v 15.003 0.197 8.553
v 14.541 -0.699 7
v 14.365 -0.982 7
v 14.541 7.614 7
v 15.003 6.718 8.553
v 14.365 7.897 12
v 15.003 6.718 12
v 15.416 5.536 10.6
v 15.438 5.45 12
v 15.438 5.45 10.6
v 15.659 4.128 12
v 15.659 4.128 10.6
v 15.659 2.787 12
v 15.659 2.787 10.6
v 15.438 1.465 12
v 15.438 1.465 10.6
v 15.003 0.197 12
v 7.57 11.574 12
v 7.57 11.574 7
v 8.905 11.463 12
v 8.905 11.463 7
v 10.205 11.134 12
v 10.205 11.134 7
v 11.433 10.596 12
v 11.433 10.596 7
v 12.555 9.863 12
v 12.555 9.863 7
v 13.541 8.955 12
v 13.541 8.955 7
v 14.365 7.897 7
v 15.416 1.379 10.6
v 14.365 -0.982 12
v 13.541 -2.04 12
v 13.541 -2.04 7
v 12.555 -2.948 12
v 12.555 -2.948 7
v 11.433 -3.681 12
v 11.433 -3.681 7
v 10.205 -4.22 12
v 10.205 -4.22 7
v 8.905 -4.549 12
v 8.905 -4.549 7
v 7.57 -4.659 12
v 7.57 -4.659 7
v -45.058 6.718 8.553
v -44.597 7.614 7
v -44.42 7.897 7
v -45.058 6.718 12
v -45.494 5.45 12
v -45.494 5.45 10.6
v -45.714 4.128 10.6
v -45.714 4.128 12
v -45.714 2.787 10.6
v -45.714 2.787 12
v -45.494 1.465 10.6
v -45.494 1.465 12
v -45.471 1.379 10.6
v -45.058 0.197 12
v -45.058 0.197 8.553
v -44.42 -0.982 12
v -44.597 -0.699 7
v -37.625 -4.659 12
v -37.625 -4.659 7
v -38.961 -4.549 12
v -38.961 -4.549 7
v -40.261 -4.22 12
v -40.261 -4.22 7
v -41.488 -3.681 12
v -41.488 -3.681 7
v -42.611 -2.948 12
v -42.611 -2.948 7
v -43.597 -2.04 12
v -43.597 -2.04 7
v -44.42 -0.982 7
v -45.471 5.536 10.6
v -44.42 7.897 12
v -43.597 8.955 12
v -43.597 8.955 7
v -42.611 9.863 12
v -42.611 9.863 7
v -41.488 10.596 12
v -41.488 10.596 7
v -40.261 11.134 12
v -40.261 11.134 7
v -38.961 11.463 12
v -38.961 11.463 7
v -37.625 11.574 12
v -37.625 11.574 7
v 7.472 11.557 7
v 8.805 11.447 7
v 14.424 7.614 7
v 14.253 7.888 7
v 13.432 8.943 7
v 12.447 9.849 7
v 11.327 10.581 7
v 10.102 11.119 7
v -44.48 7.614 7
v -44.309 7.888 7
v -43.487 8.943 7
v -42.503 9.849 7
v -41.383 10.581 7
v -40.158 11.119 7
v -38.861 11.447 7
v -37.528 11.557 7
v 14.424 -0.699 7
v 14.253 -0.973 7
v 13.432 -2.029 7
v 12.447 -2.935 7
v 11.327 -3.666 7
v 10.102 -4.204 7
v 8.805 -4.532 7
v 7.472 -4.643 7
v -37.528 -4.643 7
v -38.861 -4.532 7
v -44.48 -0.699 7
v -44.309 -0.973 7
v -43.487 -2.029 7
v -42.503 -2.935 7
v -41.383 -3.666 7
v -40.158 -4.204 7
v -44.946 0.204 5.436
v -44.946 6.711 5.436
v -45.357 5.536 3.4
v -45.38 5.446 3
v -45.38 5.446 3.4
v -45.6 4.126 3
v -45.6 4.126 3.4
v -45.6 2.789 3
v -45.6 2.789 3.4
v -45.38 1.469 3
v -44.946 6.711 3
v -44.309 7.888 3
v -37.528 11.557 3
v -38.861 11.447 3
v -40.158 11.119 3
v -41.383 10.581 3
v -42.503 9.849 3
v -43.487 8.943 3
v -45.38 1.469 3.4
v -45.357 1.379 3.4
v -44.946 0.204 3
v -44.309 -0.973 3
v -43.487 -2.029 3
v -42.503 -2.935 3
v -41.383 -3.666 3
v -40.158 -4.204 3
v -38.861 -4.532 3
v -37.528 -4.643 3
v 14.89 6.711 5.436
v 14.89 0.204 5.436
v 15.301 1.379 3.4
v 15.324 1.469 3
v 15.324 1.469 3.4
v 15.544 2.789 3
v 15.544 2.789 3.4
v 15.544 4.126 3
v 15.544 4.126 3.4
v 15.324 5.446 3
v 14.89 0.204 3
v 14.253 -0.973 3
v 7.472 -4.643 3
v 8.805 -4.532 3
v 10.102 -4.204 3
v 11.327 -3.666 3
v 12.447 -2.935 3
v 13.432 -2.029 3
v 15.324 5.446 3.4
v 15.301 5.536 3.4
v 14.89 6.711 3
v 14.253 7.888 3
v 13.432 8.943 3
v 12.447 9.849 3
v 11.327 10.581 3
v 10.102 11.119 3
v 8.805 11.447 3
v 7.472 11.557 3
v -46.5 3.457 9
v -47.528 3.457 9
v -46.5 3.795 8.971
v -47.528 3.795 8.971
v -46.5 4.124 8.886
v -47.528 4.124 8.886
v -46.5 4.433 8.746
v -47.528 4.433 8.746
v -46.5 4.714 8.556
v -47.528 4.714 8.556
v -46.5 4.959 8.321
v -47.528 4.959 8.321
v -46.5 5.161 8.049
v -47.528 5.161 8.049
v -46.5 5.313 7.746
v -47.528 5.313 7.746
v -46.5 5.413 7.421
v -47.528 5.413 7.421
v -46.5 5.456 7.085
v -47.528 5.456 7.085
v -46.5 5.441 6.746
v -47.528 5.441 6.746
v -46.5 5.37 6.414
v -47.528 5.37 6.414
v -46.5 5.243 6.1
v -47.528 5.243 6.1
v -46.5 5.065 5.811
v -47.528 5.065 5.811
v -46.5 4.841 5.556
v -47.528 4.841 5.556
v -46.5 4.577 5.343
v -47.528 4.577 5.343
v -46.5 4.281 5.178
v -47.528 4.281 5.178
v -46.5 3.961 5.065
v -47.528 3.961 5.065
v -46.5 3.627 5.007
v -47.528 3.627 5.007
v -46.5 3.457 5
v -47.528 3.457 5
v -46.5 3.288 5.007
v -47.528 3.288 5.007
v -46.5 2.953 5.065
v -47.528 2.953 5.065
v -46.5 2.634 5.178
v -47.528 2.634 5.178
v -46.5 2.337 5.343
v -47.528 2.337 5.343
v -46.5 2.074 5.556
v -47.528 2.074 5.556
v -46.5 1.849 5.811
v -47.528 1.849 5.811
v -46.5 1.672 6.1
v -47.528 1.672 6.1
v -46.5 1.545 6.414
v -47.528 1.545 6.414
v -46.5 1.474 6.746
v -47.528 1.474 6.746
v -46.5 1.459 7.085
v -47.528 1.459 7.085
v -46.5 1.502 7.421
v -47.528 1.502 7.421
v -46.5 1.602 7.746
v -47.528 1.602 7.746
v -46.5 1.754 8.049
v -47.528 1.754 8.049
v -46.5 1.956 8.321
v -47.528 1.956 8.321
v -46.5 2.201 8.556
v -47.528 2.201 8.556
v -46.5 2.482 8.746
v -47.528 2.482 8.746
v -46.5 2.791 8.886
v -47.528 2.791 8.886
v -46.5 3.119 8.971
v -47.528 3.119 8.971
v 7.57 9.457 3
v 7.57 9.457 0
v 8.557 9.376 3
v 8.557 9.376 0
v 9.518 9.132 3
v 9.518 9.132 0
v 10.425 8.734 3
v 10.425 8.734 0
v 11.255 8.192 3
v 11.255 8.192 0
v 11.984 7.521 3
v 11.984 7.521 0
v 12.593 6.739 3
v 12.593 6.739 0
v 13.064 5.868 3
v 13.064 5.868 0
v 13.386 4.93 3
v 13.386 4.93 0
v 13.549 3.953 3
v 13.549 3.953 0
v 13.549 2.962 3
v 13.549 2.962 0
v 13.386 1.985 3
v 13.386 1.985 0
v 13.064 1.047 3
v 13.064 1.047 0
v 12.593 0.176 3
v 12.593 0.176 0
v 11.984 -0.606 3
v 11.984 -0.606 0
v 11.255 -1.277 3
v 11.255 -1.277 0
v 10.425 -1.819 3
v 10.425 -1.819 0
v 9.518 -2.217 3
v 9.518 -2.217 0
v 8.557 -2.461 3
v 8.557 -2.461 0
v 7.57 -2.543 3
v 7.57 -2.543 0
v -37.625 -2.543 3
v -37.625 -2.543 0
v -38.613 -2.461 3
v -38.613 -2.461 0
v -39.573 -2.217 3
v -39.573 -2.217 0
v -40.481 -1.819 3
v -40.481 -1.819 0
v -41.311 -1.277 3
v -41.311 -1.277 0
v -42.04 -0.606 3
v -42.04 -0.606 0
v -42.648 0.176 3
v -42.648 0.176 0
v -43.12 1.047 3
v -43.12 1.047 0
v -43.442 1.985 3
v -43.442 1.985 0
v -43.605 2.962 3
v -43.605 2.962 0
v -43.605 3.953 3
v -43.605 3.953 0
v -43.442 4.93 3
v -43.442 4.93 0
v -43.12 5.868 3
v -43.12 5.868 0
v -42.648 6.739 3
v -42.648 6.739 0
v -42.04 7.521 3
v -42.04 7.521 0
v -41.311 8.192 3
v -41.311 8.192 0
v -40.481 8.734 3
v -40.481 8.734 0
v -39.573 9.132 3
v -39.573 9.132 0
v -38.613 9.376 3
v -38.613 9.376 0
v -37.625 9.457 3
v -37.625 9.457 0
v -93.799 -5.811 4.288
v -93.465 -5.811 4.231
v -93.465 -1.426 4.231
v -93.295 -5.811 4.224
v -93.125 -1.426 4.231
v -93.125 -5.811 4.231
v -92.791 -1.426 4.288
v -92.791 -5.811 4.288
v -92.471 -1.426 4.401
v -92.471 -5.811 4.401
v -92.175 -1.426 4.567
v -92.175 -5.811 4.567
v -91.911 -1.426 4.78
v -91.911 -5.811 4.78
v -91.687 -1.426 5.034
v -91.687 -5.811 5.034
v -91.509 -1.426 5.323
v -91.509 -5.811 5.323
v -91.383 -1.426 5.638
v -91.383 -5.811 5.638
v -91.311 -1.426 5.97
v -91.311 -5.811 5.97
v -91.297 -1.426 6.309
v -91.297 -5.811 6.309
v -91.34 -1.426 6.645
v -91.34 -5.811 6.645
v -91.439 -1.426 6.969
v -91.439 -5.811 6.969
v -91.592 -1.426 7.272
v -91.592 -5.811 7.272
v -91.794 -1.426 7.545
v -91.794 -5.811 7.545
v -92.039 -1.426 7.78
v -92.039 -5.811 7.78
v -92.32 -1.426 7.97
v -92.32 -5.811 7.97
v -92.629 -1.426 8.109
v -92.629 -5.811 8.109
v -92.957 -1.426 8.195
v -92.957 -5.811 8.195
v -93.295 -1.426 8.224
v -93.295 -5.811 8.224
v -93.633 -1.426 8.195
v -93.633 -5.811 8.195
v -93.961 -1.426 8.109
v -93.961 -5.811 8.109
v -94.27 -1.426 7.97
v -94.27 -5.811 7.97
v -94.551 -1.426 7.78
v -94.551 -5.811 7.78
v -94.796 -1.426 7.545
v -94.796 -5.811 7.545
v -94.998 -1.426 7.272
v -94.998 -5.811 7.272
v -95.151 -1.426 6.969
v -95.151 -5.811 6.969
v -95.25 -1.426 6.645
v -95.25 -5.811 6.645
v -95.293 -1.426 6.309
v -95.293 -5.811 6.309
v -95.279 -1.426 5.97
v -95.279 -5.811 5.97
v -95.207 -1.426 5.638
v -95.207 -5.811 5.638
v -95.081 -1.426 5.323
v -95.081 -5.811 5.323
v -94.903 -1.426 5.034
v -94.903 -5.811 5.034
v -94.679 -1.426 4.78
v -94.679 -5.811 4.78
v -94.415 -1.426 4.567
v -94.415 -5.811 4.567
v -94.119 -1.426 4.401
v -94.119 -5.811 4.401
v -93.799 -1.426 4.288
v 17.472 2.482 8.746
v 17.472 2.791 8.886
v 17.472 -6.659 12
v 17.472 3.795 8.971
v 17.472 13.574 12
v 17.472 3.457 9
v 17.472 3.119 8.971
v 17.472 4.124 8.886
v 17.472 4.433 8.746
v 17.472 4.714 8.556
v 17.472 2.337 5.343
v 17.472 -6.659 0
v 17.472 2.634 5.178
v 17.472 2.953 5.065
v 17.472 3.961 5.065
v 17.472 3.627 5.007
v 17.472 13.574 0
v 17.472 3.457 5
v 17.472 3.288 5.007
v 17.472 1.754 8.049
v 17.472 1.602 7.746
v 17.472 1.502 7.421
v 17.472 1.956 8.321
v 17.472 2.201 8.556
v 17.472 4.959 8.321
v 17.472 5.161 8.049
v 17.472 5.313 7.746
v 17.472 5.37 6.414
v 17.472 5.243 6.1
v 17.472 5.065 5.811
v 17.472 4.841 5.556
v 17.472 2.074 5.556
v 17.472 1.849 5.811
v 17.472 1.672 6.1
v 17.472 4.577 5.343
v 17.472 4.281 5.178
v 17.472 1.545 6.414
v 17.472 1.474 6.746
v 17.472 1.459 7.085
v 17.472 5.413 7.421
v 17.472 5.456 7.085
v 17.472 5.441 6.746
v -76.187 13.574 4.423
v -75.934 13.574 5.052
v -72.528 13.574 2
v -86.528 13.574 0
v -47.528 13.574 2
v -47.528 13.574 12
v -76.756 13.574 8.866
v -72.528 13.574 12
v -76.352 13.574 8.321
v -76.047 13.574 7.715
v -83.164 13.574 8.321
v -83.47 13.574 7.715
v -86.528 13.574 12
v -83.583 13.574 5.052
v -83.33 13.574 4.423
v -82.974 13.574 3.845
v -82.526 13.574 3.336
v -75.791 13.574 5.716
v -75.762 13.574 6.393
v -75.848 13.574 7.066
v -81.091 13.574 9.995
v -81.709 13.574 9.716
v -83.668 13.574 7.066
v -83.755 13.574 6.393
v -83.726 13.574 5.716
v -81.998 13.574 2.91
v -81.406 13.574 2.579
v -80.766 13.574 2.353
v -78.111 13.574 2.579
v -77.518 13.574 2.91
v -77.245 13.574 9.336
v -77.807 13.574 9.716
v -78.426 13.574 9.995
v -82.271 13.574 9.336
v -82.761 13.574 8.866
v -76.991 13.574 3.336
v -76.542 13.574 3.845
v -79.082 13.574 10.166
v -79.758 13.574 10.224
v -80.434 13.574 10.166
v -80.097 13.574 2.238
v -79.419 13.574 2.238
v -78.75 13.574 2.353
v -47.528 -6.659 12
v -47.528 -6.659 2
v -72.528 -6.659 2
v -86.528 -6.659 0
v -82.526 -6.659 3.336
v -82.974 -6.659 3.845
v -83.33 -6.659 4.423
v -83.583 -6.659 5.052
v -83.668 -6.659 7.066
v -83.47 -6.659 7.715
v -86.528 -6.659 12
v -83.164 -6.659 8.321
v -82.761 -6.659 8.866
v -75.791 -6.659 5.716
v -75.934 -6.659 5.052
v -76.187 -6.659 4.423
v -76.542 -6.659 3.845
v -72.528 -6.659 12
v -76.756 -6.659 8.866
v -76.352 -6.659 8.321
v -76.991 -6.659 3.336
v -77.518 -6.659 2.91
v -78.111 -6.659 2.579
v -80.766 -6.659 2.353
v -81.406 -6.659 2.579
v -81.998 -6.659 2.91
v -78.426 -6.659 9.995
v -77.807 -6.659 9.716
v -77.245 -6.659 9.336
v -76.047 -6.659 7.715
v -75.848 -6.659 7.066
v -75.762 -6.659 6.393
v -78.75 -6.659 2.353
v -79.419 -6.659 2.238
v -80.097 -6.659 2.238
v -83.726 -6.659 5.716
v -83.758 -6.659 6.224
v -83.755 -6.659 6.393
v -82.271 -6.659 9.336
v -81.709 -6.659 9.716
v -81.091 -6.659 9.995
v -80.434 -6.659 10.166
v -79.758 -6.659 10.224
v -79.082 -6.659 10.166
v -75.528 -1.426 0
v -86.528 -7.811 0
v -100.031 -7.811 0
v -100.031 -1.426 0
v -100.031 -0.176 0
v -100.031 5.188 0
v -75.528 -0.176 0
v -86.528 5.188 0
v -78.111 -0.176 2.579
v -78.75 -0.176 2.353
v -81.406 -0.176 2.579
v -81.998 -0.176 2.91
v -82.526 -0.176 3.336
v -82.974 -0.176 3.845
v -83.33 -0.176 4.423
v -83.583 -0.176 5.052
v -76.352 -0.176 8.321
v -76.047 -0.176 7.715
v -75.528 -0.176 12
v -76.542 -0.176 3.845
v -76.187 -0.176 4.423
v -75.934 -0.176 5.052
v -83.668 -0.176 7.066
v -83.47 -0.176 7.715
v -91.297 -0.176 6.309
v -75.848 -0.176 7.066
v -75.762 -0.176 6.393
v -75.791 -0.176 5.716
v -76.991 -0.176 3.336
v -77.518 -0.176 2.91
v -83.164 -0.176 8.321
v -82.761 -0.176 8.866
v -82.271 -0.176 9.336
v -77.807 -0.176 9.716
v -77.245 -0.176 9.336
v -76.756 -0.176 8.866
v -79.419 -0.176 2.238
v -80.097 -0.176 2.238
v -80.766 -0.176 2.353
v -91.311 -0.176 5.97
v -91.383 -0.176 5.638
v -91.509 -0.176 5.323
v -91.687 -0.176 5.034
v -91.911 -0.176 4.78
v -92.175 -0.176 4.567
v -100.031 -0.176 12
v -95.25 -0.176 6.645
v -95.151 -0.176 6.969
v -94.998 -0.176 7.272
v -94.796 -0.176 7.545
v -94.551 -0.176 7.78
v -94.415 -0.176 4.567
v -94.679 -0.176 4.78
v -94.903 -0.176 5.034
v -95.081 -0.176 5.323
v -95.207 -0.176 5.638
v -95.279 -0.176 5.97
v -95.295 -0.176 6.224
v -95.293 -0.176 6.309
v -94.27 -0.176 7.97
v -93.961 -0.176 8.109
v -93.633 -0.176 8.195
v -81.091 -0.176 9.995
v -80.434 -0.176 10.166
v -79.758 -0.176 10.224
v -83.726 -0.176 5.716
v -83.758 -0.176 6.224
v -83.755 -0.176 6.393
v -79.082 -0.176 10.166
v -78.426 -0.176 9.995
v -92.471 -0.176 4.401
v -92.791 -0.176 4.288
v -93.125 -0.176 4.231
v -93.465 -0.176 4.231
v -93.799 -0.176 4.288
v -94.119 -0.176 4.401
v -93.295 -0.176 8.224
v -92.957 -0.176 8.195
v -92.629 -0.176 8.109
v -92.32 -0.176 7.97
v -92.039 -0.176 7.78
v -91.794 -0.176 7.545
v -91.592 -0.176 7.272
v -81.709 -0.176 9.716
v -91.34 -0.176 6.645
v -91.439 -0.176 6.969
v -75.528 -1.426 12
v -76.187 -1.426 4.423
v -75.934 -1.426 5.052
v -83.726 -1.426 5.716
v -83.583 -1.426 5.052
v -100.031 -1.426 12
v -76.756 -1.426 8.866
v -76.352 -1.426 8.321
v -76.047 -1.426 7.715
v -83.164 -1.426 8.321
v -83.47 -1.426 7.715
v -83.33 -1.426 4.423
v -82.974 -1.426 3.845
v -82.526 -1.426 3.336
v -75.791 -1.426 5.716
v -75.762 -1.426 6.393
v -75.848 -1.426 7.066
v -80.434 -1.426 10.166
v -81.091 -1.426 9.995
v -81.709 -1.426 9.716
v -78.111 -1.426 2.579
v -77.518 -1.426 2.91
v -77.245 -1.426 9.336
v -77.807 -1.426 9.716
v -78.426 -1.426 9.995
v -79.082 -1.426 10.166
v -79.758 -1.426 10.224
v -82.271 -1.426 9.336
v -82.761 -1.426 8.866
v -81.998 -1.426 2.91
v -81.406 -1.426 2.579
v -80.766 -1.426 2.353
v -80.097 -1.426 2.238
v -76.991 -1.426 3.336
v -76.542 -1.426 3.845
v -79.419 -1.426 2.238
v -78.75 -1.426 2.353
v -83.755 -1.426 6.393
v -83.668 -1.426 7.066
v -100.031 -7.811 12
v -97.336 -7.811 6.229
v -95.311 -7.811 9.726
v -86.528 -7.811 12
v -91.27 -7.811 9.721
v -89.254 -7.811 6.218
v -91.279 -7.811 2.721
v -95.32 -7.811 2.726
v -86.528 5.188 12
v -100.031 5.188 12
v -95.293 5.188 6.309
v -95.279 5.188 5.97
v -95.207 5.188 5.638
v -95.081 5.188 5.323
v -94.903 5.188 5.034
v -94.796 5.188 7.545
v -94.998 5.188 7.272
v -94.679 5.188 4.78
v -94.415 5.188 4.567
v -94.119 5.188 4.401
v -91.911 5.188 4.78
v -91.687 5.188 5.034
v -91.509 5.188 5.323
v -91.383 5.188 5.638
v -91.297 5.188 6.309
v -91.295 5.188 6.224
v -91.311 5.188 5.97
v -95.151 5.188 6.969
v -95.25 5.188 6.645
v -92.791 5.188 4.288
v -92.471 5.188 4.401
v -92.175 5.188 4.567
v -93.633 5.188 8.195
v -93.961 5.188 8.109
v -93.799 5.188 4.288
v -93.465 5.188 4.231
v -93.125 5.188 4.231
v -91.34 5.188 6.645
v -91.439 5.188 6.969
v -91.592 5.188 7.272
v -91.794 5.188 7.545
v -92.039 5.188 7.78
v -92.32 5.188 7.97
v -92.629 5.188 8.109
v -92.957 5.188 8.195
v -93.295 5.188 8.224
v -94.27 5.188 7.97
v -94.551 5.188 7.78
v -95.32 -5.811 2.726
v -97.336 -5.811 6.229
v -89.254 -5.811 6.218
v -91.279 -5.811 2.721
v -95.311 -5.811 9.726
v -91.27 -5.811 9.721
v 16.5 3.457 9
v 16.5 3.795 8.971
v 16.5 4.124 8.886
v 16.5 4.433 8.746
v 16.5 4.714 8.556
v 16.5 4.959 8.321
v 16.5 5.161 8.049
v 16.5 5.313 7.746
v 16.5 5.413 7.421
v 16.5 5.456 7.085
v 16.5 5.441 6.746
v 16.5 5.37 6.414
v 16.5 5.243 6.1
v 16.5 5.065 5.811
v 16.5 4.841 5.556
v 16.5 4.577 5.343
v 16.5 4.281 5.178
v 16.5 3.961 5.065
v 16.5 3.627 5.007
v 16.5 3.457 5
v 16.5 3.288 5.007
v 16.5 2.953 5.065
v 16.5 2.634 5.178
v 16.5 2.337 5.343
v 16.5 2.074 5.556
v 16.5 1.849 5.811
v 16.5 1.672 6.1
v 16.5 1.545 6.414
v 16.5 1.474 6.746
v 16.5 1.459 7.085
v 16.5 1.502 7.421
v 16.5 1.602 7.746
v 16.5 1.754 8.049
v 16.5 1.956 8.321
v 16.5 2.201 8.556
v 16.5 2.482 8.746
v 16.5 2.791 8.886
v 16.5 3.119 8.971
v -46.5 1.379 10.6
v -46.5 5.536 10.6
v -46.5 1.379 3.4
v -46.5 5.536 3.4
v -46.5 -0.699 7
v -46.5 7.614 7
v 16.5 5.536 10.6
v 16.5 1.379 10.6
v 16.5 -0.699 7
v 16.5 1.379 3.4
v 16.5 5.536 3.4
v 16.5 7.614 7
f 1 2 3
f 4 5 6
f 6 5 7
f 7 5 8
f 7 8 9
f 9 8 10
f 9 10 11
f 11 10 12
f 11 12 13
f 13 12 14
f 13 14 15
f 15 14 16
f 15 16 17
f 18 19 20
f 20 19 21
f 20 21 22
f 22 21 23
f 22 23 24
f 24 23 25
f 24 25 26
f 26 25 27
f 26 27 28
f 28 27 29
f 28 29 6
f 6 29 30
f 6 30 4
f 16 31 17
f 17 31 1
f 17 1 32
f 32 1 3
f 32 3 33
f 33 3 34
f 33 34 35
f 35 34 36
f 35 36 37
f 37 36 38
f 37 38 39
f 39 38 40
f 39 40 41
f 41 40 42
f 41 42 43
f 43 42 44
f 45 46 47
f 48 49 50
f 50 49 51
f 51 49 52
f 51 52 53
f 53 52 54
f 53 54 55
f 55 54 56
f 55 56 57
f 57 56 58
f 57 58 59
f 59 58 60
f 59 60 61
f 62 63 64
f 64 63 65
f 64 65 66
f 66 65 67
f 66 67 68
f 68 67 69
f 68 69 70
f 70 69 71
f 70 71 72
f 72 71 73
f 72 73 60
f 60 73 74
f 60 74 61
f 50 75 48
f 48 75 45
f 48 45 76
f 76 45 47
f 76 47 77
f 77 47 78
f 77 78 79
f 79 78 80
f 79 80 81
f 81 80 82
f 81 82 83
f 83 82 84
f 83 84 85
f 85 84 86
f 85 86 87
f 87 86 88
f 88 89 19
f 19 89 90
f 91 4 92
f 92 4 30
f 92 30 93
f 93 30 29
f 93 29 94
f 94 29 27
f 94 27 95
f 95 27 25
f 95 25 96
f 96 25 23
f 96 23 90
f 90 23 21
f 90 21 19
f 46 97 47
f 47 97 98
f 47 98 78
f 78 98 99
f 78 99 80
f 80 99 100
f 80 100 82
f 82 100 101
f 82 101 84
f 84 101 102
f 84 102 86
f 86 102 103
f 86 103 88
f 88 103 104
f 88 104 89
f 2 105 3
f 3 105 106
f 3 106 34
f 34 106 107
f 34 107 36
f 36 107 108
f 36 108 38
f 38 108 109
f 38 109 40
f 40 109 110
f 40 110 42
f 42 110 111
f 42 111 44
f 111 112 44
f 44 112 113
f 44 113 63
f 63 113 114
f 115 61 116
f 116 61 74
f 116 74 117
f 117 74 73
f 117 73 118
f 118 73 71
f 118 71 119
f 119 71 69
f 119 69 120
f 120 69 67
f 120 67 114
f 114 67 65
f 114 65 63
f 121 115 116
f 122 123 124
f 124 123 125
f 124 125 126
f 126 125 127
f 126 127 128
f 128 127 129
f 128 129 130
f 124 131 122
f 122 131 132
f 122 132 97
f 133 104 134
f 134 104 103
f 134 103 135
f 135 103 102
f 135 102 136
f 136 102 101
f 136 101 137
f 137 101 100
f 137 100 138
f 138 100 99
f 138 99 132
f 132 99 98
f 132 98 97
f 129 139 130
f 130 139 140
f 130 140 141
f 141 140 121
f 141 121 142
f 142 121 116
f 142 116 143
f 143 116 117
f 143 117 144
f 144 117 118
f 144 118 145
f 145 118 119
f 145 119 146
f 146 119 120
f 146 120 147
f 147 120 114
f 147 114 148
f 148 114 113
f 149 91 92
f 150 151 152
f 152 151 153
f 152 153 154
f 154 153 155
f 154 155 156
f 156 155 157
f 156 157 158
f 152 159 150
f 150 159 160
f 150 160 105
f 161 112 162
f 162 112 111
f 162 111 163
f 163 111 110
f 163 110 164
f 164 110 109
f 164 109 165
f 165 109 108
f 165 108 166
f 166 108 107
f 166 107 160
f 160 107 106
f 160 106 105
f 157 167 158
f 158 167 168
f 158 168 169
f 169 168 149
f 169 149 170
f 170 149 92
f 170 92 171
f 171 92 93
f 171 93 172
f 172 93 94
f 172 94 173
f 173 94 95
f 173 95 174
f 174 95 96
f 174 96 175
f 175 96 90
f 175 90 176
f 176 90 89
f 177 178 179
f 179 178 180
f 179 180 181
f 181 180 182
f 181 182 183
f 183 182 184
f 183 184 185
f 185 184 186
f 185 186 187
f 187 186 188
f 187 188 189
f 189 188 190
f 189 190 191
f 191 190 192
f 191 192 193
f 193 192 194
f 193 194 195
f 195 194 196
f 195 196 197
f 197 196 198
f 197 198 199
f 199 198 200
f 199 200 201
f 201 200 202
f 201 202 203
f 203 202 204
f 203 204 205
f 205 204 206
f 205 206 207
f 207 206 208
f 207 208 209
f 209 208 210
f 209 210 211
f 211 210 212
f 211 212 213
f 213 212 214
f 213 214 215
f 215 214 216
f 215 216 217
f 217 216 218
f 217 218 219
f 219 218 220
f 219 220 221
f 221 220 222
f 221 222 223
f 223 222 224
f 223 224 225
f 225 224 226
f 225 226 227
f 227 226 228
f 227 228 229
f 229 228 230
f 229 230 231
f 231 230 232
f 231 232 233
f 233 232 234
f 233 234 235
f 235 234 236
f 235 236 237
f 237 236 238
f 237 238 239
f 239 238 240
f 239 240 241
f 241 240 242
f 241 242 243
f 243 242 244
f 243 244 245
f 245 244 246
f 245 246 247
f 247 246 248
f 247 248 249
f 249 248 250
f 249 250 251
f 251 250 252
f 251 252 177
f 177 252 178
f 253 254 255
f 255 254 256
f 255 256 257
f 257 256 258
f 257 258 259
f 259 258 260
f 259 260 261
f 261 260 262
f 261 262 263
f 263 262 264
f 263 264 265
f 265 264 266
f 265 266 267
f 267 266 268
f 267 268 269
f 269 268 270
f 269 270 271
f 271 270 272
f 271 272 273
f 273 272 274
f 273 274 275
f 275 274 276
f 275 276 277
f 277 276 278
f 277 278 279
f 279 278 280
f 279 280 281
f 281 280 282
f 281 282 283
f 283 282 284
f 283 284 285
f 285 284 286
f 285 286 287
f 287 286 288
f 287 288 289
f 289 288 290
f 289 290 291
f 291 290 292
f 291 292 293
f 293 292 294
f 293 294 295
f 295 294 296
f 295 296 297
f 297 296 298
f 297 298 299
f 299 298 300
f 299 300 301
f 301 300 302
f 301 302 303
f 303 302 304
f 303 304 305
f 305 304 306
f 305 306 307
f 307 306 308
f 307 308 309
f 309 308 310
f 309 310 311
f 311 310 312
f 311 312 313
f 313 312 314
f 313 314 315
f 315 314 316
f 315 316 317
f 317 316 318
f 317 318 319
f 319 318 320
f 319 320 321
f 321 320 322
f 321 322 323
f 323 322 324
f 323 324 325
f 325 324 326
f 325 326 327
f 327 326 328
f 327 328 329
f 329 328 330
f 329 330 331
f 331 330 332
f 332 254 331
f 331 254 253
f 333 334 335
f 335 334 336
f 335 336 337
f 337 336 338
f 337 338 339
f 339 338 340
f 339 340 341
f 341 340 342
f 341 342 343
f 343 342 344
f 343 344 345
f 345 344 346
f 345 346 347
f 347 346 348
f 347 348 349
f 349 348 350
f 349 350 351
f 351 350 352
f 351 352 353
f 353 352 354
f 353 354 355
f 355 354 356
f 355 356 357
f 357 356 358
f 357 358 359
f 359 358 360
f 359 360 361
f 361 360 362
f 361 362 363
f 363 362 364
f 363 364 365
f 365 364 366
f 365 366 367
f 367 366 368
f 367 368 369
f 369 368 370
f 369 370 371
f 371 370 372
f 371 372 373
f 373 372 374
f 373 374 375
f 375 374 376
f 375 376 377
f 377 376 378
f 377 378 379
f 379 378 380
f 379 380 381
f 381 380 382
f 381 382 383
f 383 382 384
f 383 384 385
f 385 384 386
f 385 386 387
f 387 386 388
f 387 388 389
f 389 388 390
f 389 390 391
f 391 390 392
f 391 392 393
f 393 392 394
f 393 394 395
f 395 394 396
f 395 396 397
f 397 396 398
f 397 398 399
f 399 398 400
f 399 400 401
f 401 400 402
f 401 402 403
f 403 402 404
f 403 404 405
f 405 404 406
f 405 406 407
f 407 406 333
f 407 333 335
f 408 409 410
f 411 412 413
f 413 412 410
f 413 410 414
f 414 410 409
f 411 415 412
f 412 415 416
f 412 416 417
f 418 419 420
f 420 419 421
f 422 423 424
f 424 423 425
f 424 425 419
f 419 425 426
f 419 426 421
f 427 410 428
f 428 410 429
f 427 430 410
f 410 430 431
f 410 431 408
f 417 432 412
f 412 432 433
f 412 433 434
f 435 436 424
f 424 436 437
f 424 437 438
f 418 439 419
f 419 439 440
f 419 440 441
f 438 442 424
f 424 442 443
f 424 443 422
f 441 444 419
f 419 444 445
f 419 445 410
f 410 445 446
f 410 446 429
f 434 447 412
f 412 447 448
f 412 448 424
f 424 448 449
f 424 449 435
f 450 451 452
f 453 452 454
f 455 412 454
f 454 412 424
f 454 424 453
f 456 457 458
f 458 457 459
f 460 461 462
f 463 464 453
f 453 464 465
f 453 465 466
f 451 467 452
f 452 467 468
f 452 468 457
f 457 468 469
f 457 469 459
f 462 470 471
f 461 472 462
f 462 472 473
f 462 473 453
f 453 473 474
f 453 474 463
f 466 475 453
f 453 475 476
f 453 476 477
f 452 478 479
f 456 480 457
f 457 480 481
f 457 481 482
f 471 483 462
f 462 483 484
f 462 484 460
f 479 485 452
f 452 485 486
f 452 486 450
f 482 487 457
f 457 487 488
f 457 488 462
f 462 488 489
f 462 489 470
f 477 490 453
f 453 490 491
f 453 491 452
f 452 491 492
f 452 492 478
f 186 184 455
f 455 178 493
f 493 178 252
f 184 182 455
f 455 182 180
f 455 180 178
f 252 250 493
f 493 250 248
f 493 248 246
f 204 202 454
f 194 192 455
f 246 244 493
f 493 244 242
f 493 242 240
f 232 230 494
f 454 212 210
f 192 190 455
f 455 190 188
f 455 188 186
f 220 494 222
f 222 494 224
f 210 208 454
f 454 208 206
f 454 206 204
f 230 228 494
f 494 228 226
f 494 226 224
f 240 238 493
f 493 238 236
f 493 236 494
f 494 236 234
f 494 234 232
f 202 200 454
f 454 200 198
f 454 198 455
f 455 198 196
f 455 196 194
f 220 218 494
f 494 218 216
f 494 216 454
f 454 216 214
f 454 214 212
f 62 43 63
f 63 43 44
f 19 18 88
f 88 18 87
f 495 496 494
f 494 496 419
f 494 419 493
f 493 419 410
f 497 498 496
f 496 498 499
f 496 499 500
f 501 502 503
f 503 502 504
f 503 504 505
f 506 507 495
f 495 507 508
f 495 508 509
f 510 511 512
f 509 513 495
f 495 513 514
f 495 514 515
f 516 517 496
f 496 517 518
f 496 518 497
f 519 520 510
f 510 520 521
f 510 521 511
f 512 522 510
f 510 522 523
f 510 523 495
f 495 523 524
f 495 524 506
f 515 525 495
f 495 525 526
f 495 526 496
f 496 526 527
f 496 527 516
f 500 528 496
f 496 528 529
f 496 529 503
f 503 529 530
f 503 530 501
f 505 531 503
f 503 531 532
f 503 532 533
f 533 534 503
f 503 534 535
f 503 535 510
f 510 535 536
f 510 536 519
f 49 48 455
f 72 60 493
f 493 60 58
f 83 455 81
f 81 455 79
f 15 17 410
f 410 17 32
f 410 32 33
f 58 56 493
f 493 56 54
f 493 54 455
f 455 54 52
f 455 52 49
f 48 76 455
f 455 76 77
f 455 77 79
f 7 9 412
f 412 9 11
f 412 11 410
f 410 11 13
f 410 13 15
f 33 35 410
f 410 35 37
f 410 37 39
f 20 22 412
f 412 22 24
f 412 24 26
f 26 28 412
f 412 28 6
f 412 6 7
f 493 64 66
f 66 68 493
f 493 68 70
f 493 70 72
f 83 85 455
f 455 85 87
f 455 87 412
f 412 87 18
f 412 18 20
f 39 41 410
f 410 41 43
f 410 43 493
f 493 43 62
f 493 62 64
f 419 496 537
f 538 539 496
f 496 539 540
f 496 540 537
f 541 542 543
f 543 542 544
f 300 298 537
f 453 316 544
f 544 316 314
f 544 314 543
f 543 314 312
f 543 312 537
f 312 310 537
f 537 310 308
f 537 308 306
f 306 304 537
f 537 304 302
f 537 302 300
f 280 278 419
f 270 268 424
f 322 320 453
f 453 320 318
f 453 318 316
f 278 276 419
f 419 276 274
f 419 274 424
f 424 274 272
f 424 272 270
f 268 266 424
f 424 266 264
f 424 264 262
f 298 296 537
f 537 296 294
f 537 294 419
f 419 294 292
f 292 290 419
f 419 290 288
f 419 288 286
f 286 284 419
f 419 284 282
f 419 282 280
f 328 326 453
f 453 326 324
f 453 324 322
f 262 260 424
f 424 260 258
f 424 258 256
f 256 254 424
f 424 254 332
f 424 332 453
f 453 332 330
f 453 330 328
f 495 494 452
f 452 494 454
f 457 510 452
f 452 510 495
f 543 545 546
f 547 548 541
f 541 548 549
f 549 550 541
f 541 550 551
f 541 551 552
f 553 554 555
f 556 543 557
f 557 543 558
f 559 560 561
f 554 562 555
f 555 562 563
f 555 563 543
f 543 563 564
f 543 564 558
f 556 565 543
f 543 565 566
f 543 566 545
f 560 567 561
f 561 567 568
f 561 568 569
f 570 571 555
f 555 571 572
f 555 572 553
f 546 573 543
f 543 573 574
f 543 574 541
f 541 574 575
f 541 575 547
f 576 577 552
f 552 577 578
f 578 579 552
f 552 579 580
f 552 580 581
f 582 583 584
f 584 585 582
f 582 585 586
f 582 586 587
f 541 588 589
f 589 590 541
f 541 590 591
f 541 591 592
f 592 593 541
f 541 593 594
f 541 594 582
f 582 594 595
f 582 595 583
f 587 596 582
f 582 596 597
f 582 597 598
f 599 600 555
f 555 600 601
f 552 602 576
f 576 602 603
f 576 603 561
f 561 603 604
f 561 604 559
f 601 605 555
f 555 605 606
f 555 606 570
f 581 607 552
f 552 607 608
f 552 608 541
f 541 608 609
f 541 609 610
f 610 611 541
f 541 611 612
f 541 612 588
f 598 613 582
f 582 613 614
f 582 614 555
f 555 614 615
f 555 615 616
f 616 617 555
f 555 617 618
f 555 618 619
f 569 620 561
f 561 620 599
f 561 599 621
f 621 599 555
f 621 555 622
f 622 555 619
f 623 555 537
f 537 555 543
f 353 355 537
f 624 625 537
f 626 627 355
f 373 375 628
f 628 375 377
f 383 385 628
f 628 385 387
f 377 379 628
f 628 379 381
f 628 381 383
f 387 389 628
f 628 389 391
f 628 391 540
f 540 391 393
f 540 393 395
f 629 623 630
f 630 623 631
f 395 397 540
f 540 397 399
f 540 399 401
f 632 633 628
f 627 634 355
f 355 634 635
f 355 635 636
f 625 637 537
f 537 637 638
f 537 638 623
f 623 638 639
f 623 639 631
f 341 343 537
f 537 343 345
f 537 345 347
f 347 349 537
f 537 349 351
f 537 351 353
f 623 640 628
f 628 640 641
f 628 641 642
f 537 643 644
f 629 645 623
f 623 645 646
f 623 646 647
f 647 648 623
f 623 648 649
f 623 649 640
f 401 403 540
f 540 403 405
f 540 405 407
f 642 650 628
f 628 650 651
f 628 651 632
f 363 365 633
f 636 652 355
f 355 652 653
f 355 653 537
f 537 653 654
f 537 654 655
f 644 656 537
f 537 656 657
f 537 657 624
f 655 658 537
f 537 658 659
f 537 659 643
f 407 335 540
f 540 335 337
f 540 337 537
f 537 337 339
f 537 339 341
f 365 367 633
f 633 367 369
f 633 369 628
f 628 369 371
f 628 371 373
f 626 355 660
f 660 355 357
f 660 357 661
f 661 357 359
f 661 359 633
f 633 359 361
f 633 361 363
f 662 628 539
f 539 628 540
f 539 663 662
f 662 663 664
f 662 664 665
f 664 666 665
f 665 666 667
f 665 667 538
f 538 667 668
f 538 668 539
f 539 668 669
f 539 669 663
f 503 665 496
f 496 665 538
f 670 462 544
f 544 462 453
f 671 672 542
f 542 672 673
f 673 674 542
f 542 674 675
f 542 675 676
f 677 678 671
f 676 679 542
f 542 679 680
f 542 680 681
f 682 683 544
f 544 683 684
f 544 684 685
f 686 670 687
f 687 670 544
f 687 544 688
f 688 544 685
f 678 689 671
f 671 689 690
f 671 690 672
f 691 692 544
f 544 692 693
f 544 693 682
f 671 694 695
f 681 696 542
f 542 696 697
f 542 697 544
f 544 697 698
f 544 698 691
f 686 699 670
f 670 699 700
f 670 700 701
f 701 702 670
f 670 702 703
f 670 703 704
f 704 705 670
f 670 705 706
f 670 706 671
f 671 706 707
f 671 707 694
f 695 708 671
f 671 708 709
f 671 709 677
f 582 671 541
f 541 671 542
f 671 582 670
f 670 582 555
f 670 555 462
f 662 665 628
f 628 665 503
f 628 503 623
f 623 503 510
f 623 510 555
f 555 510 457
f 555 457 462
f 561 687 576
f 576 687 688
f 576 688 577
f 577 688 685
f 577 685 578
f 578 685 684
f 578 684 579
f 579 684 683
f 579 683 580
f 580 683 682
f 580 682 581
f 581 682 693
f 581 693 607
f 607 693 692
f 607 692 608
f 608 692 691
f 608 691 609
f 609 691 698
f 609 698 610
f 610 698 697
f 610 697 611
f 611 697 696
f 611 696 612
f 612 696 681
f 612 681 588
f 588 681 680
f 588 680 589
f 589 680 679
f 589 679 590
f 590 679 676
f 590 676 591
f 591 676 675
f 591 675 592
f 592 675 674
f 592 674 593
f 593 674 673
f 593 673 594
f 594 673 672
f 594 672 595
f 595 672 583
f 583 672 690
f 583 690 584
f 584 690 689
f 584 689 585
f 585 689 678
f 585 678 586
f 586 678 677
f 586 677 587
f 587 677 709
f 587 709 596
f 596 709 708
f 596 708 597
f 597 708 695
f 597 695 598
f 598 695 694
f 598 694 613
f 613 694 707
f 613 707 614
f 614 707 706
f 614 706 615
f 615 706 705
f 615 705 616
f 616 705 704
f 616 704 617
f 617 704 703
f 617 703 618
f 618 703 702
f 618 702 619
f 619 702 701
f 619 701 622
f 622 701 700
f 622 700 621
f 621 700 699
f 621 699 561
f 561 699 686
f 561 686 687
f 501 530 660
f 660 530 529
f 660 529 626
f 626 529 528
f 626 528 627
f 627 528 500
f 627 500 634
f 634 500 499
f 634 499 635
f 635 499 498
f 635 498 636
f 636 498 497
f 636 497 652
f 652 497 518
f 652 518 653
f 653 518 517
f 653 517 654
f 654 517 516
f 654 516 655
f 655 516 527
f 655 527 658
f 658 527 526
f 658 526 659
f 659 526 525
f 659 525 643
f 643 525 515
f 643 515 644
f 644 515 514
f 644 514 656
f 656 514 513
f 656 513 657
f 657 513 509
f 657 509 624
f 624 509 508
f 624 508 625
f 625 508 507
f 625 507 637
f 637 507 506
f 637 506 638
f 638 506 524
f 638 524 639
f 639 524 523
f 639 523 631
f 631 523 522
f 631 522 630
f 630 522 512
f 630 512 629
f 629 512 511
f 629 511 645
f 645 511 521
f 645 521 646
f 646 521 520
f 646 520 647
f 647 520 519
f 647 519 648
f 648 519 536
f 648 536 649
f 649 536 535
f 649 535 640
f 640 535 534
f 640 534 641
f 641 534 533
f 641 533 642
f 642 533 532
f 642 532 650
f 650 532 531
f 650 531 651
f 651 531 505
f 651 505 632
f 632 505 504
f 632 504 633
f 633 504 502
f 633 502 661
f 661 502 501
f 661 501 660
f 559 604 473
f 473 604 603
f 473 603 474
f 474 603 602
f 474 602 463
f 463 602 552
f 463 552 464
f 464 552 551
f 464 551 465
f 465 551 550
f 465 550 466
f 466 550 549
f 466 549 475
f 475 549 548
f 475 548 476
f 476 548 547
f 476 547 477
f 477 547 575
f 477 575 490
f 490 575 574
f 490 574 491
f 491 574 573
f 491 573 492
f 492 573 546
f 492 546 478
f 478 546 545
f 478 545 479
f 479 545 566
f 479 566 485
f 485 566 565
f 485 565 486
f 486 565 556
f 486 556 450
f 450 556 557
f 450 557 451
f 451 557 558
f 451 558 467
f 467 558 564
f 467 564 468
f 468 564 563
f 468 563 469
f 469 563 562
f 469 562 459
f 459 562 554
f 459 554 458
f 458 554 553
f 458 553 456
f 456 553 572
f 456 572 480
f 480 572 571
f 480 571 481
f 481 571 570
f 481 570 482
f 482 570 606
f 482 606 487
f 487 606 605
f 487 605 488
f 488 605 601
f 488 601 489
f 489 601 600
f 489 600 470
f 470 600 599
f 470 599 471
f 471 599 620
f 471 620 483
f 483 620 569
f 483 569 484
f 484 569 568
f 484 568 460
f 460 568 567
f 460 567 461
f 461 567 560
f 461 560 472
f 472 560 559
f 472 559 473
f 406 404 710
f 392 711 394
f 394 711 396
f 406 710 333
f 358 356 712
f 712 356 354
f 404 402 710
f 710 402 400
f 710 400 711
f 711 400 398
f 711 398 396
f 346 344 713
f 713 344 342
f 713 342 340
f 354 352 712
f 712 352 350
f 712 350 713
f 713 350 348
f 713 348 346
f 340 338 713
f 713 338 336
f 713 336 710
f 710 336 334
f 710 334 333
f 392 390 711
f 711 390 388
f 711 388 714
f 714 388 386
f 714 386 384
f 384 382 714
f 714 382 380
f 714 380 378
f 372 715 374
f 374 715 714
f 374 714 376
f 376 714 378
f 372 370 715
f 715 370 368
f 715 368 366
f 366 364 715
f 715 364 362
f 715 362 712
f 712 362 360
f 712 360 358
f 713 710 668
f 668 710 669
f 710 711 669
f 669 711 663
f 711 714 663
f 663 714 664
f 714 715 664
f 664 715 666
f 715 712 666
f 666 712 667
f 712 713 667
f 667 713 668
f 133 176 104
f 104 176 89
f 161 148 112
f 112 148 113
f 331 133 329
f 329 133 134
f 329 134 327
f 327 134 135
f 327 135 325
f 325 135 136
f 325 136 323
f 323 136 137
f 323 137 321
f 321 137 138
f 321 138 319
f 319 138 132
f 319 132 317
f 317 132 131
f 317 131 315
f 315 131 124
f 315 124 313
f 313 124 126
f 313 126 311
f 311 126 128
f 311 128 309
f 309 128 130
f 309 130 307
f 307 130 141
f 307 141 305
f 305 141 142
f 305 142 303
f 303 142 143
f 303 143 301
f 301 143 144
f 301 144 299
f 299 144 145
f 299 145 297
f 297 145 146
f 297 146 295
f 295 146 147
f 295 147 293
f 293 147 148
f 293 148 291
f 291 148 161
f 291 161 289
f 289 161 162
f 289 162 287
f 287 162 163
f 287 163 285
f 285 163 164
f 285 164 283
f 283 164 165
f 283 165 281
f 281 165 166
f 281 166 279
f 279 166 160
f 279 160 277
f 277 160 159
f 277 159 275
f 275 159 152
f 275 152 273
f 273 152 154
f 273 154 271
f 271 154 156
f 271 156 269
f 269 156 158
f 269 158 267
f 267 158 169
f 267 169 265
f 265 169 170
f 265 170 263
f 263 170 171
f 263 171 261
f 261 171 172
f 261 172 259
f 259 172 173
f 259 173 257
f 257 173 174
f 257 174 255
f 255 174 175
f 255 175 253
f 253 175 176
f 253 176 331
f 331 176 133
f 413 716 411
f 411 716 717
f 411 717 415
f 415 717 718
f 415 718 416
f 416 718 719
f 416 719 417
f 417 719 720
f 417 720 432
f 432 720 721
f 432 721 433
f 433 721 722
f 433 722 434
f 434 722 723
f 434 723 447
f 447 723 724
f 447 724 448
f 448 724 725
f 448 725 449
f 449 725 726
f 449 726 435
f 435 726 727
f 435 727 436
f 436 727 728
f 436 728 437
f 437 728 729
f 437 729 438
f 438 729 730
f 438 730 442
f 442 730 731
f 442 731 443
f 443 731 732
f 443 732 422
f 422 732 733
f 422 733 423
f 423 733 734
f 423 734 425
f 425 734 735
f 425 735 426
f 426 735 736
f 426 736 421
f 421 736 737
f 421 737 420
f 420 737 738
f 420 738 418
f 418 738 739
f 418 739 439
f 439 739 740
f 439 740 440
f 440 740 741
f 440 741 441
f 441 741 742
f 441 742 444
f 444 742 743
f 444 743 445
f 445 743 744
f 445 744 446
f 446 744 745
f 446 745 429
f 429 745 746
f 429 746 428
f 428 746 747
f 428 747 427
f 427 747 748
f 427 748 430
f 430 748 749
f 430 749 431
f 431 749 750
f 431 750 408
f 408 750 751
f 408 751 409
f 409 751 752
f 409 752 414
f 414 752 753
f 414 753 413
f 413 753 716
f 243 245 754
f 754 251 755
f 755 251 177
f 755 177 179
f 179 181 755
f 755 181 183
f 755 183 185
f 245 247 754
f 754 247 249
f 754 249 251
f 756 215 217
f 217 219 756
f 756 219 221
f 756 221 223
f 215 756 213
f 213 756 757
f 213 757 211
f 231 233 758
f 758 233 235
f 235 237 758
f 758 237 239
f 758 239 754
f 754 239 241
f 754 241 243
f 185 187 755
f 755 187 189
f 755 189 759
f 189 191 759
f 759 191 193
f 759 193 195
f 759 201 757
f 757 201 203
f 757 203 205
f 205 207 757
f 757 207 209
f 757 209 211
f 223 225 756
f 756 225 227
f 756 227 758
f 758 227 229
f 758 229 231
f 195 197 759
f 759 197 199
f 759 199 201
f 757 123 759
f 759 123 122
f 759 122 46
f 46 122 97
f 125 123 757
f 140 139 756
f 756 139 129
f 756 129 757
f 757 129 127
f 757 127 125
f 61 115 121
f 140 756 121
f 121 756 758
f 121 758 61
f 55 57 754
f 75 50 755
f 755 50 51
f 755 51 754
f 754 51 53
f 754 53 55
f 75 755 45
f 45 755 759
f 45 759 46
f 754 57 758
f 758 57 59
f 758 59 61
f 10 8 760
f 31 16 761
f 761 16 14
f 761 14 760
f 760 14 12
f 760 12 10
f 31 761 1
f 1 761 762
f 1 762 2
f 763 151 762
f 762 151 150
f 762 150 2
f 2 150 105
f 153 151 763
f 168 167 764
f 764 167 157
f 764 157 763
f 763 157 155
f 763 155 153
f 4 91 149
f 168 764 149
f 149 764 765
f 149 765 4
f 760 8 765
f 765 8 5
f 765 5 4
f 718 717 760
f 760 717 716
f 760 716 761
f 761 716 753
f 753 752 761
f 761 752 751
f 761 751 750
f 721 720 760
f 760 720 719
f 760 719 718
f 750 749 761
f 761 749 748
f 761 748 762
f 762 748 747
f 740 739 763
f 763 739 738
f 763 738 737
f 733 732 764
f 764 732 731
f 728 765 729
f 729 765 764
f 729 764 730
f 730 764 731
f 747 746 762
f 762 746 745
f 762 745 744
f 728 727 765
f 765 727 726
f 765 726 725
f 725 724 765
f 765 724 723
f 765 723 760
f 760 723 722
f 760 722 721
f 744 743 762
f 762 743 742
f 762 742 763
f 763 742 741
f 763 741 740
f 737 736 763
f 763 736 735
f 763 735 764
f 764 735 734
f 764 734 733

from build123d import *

# Parameters (mm, degrees)
BOSS_EXTRU_9_DEPTH            = 12
BOSS_EXTRU_10_DEPTH           = 7
BOSS_EXTRU_11_DEPTH           = 12
BOSS_EXTRU_12_DEPTH           = 2
ENL_V_MAT_EXTRU_5_DEPTH       = 102.658790864
ENL_V_MAT_EXTRU_5_DEPTH_BACK  = 102.658790864
ESQUISSE3_R                   = 4
ESQUISSE3_R_2                 = 2
ENL_V_MAT_EXTRU_6_DEPTH       = 2
ENL_V_MAT_EXTRU_13_DEPTH      = 9
ENL_V_MAT_EXTRU_15_DEPTH      = 38
ENL_V_MAT_EXTRU_15_DEPTH_BACK = 53
ESQUISSE12_R                  = 2
ENL_V_MAT_EXTRU_16_DEPTH      = 16.5
ENL_V_MAT_EXTRU_16_DEPTH_BACK = 46.5


with BuildPart() as part:
    # Esquisse1 → Boss.-Extru.9 (new body)
    with BuildSketch(Plane.XY):
        Polygon((-35.202033687, 13.574181601), (-47.527863484, 13.574181601), (-47.527863484, -6.659287984), (17.472136516, -6.659287984), (17.472136516, 13.574181601), align=None)
        with BuildLine():
            ThreePointArc((-37.62524742, -4.659287984), (-45.741982213, 3.457446809), (-37.62524742, 11.574181601))
            Line((-37.62524742, 11.574181601), (7.569520453, 11.574181601))
            ThreePointArc((7.569520453, 11.574181601), (15.686255246, 3.457446809), (7.569520453, -4.659287984))
            Line((7.569520453, -4.659287984), (-37.62524742, -4.659287984))
        make_face(mode=Mode.SUBTRACT)
    extrude(amount=BOSS_EXTRU_9_DEPTH)

    # Esquisse1<14> → Boss.-Extru.10 (add)
    with BuildSketch(Plane.XY):
        with BuildLine():
            Line((7.569520453, 11.574181601), (-37.62524742, 11.574181601))
            ThreePointArc((-37.62524742, 11.574181601), (-45.741982213, 3.457446809), (-37.62524742, -4.659287984))
            Line((-37.62524742, -4.659287984), (7.569520453, -4.659287984))
            ThreePointArc((7.569520453, -4.659287984), (15.686255246, 3.457446809), (7.569520453, 11.574181601))
        make_face()
        with BuildLine():
            ThreePointArc((-37.62524742, -2.542553191), (-43.62524742, 3.457446809), (-37.62524742, 9.457446809))
            Line((-37.62524742, 9.457446809), (7.569520453, 9.457446809))
            ThreePointArc((7.569520453, 9.457446809), (13.569520453, 3.457446809), (7.569520453, -2.542553191))
            Line((7.569520453, -2.542553191), (-37.62524742, -2.542553191))
        make_face(mode=Mode.SUBTRACT)
    extrude(amount=BOSS_EXTRU_10_DEPTH)



with BuildPart() as body_2:
    # Esquisse1<17> → Boss.-Extru.11 (new body)
    with BuildSketch(Plane.XY):
        Polygon((-72.527863484, 13.574181601), (-86.527863484, 13.574181601), (-86.527863484, 5.187945625), (-100.031251885, 5.187945625), (-100.031251885, -0.175818399), (-75.527863484, -0.175818399), (-75.527863484, -1.425818399), (-100.031251885, -1.425818399), (-100.031251885, -7.810998677), (-86.527863484, -7.810998677), (-86.527863484, -6.659287984), (-72.527863484, -6.659287984), align=None)
    extrude(amount=BOSS_EXTRU_11_DEPTH)


with BuildPart() as part_1:
    add(part.part)

    add(body_2.part)  # Boss.-Extru.12 merges body 2
    # Esquisse1<18> → Boss.-Extru.12 (add)
    with BuildSketch(Plane.XY):
        Polygon((-47.527863484, -6.659287984), (-47.527863484, 13.574181601), (-72.527863484, 13.574181601), (-72.527863484, 10.071210833), (-72.527863484, 9.071210833), (-72.527863484, -1.92773347), (-72.527863484, -2.92773347), (-72.527863484, -6.659287984), align=None)
    extrude(amount=BOSS_EXTRU_12_DEPTH)

    # Esquisse3 → Enlèv. mat.-Extru.5 (cut, two sides: drawn at the far end of the back side and taken through both)
    with BuildSketch(Plane(origin=(0, 0, 0), x_dir=(1, 0, 0), z_dir=(0, 1, 0)).offset(-ENL_V_MAT_EXTRU_5_DEPTH_BACK)):
        with Locations((-79.75826264, -6.22368636)):
            Circle(ESQUISSE3_R)
        with Locations((-93.295048271, -6.22368636)):
            Circle(ESQUISSE3_R_2)
    extrude(amount=ENL_V_MAT_EXTRU_5_DEPTH + ENL_V_MAT_EXTRU_5_DEPTH_BACK, mode=Mode.SUBTRACT)

    # Esquisse4 → Enlèv. mat.-Extru.6 (cut)
    with BuildSketch(Plane.XZ.offset(7.810998677)):
        Polygon((-91.278888912, 2.721053811), (-89.253599824, 6.218415309), (-91.269759184, 9.721047858), (-95.311207631, 9.726318909), (-97.336496718, 6.228957411), (-95.320337359, 2.726324862), align=None)
    extrude(amount=-ENL_V_MAT_EXTRU_6_DEPTH, mode=Mode.SUBTRACT)

    # Esquisse9 → Enlèv. mat.-Extru.13 (cut)
    with BuildSketch(Plane.XY.offset(12)):
        with BuildLine():
            Line((-37.527863484, 11.557446809), (7.472136516, 11.557446809))
            ThreePointArc((7.472136516, 11.557446809), (15.572136516, 3.457446809), (7.472136516, -4.642553191))
            Line((7.472136516, -4.642553191), (-37.527863484, -4.642553191))
            ThreePointArc((-37.527863484, -4.642553191), (-45.627863484, 3.457446809), (-37.527863484, 11.557446809))
        make_face()
    extrude(amount=-ENL_V_MAT_EXTRU_13_DEPTH, mode=Mode.SUBTRACT)

    # Esquisse12 → Enlèv. mat.-Extru.15 (cut, two sides: drawn at the far end of the back side and taken through both)
    with BuildSketch(Plane(origin=(0, 0, 0), x_dir=(0, 0, -1), z_dir=(1, 0, 0)).offset(-ENL_V_MAT_EXTRU_15_DEPTH_BACK)):
        with Locations((-7, 3.457446809)):
            Circle(ESQUISSE12_R)
    extrude(amount=ENL_V_MAT_EXTRU_15_DEPTH + ENL_V_MAT_EXTRU_15_DEPTH_BACK, mode=Mode.SUBTRACT)

    # Esquisse13 → Enlèv. mat.-Extru.16 (cut, two sides: drawn at the far end of the back side and taken through both)
    with BuildSketch(Plane(origin=(0, 0, 0), x_dir=(0, 0, -1), z_dir=(1, 0, 0)).offset(-ENL_V_MAT_EXTRU_16_DEPTH_BACK)):
        Polygon((-7, -0.69947513), (-3.4, 1.378985839), (-3.4, 5.535907778), (-7, 7.614368747), (-10.6, 5.535907778), (-10.6, 1.378985839), align=None)
    extrude(amount=ENL_V_MAT_EXTRU_16_DEPTH + ENL_V_MAT_EXTRU_16_DEPTH_BACK, mode=Mode.SUBTRACT)


solid = part_1.part
